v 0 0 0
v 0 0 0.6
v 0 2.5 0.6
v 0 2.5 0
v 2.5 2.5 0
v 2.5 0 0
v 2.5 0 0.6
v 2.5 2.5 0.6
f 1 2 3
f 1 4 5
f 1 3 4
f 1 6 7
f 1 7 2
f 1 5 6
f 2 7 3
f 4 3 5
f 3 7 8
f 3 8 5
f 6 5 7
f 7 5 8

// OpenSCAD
/* Warning, this is a very basic generator with a lot of approximation 
input data : [UQFN, MGA, 2.5x2.5x0.6mm, 16, , A, C04-01173A]
generated by com.zoubworld.electronics.cad.model3d.Basic
Date : Sun Feb 15 10:50:49 CET 2026
*/

//body
color("black")
translate([0,0,0])
cube([2.5,2.5,0.6], center=false);
